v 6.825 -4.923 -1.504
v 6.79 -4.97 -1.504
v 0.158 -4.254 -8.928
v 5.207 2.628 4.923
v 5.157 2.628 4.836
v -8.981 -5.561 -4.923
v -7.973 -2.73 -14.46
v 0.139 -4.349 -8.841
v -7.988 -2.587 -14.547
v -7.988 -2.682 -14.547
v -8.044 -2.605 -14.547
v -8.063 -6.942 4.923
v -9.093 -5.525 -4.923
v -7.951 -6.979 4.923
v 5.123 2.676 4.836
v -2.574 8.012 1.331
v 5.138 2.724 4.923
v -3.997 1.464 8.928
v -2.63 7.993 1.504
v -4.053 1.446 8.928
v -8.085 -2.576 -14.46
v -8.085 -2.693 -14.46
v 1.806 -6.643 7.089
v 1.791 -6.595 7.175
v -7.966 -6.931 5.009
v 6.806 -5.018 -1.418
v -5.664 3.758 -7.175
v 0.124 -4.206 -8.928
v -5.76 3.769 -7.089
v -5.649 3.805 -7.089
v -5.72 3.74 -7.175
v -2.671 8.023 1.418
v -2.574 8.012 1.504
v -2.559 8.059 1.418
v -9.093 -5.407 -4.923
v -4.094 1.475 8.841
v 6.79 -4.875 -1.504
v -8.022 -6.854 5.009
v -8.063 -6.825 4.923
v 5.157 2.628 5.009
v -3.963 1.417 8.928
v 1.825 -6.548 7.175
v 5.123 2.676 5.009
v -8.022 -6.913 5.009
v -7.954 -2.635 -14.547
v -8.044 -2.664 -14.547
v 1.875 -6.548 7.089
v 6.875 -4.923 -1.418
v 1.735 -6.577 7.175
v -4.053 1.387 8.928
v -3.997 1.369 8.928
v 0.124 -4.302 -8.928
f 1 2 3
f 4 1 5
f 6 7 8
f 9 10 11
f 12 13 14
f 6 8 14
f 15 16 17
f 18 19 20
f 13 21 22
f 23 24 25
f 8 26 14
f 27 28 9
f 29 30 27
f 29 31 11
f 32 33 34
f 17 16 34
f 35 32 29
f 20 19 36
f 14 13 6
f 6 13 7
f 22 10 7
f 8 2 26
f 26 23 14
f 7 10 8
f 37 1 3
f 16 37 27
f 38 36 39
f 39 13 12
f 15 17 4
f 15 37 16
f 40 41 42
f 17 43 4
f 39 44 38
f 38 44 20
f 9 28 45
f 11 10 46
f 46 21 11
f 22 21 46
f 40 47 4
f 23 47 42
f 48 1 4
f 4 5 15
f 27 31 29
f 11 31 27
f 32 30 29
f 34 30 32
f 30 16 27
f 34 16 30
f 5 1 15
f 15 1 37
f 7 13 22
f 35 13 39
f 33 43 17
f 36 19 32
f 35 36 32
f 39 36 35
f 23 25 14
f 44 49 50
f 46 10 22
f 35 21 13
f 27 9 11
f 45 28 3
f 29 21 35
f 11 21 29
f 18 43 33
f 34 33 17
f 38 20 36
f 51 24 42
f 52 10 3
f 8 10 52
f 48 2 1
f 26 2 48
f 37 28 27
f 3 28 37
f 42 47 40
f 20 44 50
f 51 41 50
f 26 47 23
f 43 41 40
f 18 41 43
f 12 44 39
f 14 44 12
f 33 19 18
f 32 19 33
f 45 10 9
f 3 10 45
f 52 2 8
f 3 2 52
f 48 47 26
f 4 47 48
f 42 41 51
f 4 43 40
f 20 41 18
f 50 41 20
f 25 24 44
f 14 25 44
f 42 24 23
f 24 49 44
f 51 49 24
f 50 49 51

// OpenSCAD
// Auto-generated OpenSCAD file

    inner_points = 10*[[0.010822126776322105, -0.4253965348253418, -0.8841193748434077], [-0.9011876079860377, -0.546584266283201, -0.49226254200418296], [-0.5679521834680924, 0.3710392408495472, -0.708875678733561], [-0.7981668194007837, -0.6883484018941259, 0.4922625450168436], [-0.2589805762752483, 0.796397621522542, 0.14177512737898157], [0.6774959295154908, -0.4922625333758151, -0.14177512924090818], [-0.4012610459893345, 0.1416600510453211, 0.8841193748434077], [0.5107486887730253, 0.2628477825031803, 0.49226254200418296], [0.17751326425508, -0.6547757246295679, 0.708875678733561], [-0.8003688307481618, -0.2634563312038399, -1.446030934505191]];

    outer_points = 10*[[-0.6880381915718803, -0.49999998970608384, -0.42557250195458624], [-0.2628785942986316, -0.8091184366568306, 0.4251243315890725], [-0.8507501659543638, -0.00016416400980563553, 0.42512659922224816], [0.6881449121452123, -0.49999998970608384, 0.4253999146333339], [-0.26305127181358173, 0.8089155187812519, 0.4254035837408861], [0.0002222331138788114, 0.00016416400980563553, -0.9510564761622176], [0.6880381915718803, 0.49999998970608384, 0.42557250195458624], [0.2628785942986316, 0.8091184366568306, -0.4251243315890725], [0.8507501659543638, 0.00016416400980563553, -0.42512659922224816], [-1.2493737711519366, -0.9079276976139716, 0.2944951005790503]];

    // Convex hull for inner set (I)
    module inner_hull() {
        hull() {
            for (p = inner_points) {
                translate(p) sphere(r=0.1);
            }
        }
    }

    // Convex hull for outer set (O) minus inner hull (O \ I)
    module outer_minus_inner() {
        difference() {
            hull() {
                for (p = outer_points) {
                    translate(p) sphere(r=0.1);
                }
            }
            inner_hull(); // Subtract inner hull
        }
    }

    // Convex hull for outer set (O) minus all translated inner hulls
    module outer_minus_AllTranslationInner() {
        difference() {
            hull() {
                for (p = outer_points) {
                    translate(p) sphere(r=0.1);
                }
            }
            hull() {
                translate([0,0,50]) inner_hull();
                translate([0,0,-50]) inner_hull();
            }; // Subtract translated inner hulls
        }
    }

    // Difference between outer_minus_inner and outer_minus_AllTranslationInner
    module outer_minus_inner_diff() {
        difference() {
            // Outer minus inner
            difference() {
                hull() {
                    for (p = outer_points) {
                        translate(p) sphere(r=0.1);
                    }
                }
                inner_hull();
            }

            // Subtract Outer minus AllTranslationInner
            difference() {
                hull() {
                    for (p = outer_points) {
                        translate(p) sphere(r=0.1);
                    }
                }
                hull() {
                    translate([0,0,50]) inner_hull();
                    translate([0,0,-50]) inner_hull();
                };
            }
        }
    }

    // Rendering all with colors applied
    color([1, 0, 0, 0.5]) inner_hull(); // Transparent red
    
